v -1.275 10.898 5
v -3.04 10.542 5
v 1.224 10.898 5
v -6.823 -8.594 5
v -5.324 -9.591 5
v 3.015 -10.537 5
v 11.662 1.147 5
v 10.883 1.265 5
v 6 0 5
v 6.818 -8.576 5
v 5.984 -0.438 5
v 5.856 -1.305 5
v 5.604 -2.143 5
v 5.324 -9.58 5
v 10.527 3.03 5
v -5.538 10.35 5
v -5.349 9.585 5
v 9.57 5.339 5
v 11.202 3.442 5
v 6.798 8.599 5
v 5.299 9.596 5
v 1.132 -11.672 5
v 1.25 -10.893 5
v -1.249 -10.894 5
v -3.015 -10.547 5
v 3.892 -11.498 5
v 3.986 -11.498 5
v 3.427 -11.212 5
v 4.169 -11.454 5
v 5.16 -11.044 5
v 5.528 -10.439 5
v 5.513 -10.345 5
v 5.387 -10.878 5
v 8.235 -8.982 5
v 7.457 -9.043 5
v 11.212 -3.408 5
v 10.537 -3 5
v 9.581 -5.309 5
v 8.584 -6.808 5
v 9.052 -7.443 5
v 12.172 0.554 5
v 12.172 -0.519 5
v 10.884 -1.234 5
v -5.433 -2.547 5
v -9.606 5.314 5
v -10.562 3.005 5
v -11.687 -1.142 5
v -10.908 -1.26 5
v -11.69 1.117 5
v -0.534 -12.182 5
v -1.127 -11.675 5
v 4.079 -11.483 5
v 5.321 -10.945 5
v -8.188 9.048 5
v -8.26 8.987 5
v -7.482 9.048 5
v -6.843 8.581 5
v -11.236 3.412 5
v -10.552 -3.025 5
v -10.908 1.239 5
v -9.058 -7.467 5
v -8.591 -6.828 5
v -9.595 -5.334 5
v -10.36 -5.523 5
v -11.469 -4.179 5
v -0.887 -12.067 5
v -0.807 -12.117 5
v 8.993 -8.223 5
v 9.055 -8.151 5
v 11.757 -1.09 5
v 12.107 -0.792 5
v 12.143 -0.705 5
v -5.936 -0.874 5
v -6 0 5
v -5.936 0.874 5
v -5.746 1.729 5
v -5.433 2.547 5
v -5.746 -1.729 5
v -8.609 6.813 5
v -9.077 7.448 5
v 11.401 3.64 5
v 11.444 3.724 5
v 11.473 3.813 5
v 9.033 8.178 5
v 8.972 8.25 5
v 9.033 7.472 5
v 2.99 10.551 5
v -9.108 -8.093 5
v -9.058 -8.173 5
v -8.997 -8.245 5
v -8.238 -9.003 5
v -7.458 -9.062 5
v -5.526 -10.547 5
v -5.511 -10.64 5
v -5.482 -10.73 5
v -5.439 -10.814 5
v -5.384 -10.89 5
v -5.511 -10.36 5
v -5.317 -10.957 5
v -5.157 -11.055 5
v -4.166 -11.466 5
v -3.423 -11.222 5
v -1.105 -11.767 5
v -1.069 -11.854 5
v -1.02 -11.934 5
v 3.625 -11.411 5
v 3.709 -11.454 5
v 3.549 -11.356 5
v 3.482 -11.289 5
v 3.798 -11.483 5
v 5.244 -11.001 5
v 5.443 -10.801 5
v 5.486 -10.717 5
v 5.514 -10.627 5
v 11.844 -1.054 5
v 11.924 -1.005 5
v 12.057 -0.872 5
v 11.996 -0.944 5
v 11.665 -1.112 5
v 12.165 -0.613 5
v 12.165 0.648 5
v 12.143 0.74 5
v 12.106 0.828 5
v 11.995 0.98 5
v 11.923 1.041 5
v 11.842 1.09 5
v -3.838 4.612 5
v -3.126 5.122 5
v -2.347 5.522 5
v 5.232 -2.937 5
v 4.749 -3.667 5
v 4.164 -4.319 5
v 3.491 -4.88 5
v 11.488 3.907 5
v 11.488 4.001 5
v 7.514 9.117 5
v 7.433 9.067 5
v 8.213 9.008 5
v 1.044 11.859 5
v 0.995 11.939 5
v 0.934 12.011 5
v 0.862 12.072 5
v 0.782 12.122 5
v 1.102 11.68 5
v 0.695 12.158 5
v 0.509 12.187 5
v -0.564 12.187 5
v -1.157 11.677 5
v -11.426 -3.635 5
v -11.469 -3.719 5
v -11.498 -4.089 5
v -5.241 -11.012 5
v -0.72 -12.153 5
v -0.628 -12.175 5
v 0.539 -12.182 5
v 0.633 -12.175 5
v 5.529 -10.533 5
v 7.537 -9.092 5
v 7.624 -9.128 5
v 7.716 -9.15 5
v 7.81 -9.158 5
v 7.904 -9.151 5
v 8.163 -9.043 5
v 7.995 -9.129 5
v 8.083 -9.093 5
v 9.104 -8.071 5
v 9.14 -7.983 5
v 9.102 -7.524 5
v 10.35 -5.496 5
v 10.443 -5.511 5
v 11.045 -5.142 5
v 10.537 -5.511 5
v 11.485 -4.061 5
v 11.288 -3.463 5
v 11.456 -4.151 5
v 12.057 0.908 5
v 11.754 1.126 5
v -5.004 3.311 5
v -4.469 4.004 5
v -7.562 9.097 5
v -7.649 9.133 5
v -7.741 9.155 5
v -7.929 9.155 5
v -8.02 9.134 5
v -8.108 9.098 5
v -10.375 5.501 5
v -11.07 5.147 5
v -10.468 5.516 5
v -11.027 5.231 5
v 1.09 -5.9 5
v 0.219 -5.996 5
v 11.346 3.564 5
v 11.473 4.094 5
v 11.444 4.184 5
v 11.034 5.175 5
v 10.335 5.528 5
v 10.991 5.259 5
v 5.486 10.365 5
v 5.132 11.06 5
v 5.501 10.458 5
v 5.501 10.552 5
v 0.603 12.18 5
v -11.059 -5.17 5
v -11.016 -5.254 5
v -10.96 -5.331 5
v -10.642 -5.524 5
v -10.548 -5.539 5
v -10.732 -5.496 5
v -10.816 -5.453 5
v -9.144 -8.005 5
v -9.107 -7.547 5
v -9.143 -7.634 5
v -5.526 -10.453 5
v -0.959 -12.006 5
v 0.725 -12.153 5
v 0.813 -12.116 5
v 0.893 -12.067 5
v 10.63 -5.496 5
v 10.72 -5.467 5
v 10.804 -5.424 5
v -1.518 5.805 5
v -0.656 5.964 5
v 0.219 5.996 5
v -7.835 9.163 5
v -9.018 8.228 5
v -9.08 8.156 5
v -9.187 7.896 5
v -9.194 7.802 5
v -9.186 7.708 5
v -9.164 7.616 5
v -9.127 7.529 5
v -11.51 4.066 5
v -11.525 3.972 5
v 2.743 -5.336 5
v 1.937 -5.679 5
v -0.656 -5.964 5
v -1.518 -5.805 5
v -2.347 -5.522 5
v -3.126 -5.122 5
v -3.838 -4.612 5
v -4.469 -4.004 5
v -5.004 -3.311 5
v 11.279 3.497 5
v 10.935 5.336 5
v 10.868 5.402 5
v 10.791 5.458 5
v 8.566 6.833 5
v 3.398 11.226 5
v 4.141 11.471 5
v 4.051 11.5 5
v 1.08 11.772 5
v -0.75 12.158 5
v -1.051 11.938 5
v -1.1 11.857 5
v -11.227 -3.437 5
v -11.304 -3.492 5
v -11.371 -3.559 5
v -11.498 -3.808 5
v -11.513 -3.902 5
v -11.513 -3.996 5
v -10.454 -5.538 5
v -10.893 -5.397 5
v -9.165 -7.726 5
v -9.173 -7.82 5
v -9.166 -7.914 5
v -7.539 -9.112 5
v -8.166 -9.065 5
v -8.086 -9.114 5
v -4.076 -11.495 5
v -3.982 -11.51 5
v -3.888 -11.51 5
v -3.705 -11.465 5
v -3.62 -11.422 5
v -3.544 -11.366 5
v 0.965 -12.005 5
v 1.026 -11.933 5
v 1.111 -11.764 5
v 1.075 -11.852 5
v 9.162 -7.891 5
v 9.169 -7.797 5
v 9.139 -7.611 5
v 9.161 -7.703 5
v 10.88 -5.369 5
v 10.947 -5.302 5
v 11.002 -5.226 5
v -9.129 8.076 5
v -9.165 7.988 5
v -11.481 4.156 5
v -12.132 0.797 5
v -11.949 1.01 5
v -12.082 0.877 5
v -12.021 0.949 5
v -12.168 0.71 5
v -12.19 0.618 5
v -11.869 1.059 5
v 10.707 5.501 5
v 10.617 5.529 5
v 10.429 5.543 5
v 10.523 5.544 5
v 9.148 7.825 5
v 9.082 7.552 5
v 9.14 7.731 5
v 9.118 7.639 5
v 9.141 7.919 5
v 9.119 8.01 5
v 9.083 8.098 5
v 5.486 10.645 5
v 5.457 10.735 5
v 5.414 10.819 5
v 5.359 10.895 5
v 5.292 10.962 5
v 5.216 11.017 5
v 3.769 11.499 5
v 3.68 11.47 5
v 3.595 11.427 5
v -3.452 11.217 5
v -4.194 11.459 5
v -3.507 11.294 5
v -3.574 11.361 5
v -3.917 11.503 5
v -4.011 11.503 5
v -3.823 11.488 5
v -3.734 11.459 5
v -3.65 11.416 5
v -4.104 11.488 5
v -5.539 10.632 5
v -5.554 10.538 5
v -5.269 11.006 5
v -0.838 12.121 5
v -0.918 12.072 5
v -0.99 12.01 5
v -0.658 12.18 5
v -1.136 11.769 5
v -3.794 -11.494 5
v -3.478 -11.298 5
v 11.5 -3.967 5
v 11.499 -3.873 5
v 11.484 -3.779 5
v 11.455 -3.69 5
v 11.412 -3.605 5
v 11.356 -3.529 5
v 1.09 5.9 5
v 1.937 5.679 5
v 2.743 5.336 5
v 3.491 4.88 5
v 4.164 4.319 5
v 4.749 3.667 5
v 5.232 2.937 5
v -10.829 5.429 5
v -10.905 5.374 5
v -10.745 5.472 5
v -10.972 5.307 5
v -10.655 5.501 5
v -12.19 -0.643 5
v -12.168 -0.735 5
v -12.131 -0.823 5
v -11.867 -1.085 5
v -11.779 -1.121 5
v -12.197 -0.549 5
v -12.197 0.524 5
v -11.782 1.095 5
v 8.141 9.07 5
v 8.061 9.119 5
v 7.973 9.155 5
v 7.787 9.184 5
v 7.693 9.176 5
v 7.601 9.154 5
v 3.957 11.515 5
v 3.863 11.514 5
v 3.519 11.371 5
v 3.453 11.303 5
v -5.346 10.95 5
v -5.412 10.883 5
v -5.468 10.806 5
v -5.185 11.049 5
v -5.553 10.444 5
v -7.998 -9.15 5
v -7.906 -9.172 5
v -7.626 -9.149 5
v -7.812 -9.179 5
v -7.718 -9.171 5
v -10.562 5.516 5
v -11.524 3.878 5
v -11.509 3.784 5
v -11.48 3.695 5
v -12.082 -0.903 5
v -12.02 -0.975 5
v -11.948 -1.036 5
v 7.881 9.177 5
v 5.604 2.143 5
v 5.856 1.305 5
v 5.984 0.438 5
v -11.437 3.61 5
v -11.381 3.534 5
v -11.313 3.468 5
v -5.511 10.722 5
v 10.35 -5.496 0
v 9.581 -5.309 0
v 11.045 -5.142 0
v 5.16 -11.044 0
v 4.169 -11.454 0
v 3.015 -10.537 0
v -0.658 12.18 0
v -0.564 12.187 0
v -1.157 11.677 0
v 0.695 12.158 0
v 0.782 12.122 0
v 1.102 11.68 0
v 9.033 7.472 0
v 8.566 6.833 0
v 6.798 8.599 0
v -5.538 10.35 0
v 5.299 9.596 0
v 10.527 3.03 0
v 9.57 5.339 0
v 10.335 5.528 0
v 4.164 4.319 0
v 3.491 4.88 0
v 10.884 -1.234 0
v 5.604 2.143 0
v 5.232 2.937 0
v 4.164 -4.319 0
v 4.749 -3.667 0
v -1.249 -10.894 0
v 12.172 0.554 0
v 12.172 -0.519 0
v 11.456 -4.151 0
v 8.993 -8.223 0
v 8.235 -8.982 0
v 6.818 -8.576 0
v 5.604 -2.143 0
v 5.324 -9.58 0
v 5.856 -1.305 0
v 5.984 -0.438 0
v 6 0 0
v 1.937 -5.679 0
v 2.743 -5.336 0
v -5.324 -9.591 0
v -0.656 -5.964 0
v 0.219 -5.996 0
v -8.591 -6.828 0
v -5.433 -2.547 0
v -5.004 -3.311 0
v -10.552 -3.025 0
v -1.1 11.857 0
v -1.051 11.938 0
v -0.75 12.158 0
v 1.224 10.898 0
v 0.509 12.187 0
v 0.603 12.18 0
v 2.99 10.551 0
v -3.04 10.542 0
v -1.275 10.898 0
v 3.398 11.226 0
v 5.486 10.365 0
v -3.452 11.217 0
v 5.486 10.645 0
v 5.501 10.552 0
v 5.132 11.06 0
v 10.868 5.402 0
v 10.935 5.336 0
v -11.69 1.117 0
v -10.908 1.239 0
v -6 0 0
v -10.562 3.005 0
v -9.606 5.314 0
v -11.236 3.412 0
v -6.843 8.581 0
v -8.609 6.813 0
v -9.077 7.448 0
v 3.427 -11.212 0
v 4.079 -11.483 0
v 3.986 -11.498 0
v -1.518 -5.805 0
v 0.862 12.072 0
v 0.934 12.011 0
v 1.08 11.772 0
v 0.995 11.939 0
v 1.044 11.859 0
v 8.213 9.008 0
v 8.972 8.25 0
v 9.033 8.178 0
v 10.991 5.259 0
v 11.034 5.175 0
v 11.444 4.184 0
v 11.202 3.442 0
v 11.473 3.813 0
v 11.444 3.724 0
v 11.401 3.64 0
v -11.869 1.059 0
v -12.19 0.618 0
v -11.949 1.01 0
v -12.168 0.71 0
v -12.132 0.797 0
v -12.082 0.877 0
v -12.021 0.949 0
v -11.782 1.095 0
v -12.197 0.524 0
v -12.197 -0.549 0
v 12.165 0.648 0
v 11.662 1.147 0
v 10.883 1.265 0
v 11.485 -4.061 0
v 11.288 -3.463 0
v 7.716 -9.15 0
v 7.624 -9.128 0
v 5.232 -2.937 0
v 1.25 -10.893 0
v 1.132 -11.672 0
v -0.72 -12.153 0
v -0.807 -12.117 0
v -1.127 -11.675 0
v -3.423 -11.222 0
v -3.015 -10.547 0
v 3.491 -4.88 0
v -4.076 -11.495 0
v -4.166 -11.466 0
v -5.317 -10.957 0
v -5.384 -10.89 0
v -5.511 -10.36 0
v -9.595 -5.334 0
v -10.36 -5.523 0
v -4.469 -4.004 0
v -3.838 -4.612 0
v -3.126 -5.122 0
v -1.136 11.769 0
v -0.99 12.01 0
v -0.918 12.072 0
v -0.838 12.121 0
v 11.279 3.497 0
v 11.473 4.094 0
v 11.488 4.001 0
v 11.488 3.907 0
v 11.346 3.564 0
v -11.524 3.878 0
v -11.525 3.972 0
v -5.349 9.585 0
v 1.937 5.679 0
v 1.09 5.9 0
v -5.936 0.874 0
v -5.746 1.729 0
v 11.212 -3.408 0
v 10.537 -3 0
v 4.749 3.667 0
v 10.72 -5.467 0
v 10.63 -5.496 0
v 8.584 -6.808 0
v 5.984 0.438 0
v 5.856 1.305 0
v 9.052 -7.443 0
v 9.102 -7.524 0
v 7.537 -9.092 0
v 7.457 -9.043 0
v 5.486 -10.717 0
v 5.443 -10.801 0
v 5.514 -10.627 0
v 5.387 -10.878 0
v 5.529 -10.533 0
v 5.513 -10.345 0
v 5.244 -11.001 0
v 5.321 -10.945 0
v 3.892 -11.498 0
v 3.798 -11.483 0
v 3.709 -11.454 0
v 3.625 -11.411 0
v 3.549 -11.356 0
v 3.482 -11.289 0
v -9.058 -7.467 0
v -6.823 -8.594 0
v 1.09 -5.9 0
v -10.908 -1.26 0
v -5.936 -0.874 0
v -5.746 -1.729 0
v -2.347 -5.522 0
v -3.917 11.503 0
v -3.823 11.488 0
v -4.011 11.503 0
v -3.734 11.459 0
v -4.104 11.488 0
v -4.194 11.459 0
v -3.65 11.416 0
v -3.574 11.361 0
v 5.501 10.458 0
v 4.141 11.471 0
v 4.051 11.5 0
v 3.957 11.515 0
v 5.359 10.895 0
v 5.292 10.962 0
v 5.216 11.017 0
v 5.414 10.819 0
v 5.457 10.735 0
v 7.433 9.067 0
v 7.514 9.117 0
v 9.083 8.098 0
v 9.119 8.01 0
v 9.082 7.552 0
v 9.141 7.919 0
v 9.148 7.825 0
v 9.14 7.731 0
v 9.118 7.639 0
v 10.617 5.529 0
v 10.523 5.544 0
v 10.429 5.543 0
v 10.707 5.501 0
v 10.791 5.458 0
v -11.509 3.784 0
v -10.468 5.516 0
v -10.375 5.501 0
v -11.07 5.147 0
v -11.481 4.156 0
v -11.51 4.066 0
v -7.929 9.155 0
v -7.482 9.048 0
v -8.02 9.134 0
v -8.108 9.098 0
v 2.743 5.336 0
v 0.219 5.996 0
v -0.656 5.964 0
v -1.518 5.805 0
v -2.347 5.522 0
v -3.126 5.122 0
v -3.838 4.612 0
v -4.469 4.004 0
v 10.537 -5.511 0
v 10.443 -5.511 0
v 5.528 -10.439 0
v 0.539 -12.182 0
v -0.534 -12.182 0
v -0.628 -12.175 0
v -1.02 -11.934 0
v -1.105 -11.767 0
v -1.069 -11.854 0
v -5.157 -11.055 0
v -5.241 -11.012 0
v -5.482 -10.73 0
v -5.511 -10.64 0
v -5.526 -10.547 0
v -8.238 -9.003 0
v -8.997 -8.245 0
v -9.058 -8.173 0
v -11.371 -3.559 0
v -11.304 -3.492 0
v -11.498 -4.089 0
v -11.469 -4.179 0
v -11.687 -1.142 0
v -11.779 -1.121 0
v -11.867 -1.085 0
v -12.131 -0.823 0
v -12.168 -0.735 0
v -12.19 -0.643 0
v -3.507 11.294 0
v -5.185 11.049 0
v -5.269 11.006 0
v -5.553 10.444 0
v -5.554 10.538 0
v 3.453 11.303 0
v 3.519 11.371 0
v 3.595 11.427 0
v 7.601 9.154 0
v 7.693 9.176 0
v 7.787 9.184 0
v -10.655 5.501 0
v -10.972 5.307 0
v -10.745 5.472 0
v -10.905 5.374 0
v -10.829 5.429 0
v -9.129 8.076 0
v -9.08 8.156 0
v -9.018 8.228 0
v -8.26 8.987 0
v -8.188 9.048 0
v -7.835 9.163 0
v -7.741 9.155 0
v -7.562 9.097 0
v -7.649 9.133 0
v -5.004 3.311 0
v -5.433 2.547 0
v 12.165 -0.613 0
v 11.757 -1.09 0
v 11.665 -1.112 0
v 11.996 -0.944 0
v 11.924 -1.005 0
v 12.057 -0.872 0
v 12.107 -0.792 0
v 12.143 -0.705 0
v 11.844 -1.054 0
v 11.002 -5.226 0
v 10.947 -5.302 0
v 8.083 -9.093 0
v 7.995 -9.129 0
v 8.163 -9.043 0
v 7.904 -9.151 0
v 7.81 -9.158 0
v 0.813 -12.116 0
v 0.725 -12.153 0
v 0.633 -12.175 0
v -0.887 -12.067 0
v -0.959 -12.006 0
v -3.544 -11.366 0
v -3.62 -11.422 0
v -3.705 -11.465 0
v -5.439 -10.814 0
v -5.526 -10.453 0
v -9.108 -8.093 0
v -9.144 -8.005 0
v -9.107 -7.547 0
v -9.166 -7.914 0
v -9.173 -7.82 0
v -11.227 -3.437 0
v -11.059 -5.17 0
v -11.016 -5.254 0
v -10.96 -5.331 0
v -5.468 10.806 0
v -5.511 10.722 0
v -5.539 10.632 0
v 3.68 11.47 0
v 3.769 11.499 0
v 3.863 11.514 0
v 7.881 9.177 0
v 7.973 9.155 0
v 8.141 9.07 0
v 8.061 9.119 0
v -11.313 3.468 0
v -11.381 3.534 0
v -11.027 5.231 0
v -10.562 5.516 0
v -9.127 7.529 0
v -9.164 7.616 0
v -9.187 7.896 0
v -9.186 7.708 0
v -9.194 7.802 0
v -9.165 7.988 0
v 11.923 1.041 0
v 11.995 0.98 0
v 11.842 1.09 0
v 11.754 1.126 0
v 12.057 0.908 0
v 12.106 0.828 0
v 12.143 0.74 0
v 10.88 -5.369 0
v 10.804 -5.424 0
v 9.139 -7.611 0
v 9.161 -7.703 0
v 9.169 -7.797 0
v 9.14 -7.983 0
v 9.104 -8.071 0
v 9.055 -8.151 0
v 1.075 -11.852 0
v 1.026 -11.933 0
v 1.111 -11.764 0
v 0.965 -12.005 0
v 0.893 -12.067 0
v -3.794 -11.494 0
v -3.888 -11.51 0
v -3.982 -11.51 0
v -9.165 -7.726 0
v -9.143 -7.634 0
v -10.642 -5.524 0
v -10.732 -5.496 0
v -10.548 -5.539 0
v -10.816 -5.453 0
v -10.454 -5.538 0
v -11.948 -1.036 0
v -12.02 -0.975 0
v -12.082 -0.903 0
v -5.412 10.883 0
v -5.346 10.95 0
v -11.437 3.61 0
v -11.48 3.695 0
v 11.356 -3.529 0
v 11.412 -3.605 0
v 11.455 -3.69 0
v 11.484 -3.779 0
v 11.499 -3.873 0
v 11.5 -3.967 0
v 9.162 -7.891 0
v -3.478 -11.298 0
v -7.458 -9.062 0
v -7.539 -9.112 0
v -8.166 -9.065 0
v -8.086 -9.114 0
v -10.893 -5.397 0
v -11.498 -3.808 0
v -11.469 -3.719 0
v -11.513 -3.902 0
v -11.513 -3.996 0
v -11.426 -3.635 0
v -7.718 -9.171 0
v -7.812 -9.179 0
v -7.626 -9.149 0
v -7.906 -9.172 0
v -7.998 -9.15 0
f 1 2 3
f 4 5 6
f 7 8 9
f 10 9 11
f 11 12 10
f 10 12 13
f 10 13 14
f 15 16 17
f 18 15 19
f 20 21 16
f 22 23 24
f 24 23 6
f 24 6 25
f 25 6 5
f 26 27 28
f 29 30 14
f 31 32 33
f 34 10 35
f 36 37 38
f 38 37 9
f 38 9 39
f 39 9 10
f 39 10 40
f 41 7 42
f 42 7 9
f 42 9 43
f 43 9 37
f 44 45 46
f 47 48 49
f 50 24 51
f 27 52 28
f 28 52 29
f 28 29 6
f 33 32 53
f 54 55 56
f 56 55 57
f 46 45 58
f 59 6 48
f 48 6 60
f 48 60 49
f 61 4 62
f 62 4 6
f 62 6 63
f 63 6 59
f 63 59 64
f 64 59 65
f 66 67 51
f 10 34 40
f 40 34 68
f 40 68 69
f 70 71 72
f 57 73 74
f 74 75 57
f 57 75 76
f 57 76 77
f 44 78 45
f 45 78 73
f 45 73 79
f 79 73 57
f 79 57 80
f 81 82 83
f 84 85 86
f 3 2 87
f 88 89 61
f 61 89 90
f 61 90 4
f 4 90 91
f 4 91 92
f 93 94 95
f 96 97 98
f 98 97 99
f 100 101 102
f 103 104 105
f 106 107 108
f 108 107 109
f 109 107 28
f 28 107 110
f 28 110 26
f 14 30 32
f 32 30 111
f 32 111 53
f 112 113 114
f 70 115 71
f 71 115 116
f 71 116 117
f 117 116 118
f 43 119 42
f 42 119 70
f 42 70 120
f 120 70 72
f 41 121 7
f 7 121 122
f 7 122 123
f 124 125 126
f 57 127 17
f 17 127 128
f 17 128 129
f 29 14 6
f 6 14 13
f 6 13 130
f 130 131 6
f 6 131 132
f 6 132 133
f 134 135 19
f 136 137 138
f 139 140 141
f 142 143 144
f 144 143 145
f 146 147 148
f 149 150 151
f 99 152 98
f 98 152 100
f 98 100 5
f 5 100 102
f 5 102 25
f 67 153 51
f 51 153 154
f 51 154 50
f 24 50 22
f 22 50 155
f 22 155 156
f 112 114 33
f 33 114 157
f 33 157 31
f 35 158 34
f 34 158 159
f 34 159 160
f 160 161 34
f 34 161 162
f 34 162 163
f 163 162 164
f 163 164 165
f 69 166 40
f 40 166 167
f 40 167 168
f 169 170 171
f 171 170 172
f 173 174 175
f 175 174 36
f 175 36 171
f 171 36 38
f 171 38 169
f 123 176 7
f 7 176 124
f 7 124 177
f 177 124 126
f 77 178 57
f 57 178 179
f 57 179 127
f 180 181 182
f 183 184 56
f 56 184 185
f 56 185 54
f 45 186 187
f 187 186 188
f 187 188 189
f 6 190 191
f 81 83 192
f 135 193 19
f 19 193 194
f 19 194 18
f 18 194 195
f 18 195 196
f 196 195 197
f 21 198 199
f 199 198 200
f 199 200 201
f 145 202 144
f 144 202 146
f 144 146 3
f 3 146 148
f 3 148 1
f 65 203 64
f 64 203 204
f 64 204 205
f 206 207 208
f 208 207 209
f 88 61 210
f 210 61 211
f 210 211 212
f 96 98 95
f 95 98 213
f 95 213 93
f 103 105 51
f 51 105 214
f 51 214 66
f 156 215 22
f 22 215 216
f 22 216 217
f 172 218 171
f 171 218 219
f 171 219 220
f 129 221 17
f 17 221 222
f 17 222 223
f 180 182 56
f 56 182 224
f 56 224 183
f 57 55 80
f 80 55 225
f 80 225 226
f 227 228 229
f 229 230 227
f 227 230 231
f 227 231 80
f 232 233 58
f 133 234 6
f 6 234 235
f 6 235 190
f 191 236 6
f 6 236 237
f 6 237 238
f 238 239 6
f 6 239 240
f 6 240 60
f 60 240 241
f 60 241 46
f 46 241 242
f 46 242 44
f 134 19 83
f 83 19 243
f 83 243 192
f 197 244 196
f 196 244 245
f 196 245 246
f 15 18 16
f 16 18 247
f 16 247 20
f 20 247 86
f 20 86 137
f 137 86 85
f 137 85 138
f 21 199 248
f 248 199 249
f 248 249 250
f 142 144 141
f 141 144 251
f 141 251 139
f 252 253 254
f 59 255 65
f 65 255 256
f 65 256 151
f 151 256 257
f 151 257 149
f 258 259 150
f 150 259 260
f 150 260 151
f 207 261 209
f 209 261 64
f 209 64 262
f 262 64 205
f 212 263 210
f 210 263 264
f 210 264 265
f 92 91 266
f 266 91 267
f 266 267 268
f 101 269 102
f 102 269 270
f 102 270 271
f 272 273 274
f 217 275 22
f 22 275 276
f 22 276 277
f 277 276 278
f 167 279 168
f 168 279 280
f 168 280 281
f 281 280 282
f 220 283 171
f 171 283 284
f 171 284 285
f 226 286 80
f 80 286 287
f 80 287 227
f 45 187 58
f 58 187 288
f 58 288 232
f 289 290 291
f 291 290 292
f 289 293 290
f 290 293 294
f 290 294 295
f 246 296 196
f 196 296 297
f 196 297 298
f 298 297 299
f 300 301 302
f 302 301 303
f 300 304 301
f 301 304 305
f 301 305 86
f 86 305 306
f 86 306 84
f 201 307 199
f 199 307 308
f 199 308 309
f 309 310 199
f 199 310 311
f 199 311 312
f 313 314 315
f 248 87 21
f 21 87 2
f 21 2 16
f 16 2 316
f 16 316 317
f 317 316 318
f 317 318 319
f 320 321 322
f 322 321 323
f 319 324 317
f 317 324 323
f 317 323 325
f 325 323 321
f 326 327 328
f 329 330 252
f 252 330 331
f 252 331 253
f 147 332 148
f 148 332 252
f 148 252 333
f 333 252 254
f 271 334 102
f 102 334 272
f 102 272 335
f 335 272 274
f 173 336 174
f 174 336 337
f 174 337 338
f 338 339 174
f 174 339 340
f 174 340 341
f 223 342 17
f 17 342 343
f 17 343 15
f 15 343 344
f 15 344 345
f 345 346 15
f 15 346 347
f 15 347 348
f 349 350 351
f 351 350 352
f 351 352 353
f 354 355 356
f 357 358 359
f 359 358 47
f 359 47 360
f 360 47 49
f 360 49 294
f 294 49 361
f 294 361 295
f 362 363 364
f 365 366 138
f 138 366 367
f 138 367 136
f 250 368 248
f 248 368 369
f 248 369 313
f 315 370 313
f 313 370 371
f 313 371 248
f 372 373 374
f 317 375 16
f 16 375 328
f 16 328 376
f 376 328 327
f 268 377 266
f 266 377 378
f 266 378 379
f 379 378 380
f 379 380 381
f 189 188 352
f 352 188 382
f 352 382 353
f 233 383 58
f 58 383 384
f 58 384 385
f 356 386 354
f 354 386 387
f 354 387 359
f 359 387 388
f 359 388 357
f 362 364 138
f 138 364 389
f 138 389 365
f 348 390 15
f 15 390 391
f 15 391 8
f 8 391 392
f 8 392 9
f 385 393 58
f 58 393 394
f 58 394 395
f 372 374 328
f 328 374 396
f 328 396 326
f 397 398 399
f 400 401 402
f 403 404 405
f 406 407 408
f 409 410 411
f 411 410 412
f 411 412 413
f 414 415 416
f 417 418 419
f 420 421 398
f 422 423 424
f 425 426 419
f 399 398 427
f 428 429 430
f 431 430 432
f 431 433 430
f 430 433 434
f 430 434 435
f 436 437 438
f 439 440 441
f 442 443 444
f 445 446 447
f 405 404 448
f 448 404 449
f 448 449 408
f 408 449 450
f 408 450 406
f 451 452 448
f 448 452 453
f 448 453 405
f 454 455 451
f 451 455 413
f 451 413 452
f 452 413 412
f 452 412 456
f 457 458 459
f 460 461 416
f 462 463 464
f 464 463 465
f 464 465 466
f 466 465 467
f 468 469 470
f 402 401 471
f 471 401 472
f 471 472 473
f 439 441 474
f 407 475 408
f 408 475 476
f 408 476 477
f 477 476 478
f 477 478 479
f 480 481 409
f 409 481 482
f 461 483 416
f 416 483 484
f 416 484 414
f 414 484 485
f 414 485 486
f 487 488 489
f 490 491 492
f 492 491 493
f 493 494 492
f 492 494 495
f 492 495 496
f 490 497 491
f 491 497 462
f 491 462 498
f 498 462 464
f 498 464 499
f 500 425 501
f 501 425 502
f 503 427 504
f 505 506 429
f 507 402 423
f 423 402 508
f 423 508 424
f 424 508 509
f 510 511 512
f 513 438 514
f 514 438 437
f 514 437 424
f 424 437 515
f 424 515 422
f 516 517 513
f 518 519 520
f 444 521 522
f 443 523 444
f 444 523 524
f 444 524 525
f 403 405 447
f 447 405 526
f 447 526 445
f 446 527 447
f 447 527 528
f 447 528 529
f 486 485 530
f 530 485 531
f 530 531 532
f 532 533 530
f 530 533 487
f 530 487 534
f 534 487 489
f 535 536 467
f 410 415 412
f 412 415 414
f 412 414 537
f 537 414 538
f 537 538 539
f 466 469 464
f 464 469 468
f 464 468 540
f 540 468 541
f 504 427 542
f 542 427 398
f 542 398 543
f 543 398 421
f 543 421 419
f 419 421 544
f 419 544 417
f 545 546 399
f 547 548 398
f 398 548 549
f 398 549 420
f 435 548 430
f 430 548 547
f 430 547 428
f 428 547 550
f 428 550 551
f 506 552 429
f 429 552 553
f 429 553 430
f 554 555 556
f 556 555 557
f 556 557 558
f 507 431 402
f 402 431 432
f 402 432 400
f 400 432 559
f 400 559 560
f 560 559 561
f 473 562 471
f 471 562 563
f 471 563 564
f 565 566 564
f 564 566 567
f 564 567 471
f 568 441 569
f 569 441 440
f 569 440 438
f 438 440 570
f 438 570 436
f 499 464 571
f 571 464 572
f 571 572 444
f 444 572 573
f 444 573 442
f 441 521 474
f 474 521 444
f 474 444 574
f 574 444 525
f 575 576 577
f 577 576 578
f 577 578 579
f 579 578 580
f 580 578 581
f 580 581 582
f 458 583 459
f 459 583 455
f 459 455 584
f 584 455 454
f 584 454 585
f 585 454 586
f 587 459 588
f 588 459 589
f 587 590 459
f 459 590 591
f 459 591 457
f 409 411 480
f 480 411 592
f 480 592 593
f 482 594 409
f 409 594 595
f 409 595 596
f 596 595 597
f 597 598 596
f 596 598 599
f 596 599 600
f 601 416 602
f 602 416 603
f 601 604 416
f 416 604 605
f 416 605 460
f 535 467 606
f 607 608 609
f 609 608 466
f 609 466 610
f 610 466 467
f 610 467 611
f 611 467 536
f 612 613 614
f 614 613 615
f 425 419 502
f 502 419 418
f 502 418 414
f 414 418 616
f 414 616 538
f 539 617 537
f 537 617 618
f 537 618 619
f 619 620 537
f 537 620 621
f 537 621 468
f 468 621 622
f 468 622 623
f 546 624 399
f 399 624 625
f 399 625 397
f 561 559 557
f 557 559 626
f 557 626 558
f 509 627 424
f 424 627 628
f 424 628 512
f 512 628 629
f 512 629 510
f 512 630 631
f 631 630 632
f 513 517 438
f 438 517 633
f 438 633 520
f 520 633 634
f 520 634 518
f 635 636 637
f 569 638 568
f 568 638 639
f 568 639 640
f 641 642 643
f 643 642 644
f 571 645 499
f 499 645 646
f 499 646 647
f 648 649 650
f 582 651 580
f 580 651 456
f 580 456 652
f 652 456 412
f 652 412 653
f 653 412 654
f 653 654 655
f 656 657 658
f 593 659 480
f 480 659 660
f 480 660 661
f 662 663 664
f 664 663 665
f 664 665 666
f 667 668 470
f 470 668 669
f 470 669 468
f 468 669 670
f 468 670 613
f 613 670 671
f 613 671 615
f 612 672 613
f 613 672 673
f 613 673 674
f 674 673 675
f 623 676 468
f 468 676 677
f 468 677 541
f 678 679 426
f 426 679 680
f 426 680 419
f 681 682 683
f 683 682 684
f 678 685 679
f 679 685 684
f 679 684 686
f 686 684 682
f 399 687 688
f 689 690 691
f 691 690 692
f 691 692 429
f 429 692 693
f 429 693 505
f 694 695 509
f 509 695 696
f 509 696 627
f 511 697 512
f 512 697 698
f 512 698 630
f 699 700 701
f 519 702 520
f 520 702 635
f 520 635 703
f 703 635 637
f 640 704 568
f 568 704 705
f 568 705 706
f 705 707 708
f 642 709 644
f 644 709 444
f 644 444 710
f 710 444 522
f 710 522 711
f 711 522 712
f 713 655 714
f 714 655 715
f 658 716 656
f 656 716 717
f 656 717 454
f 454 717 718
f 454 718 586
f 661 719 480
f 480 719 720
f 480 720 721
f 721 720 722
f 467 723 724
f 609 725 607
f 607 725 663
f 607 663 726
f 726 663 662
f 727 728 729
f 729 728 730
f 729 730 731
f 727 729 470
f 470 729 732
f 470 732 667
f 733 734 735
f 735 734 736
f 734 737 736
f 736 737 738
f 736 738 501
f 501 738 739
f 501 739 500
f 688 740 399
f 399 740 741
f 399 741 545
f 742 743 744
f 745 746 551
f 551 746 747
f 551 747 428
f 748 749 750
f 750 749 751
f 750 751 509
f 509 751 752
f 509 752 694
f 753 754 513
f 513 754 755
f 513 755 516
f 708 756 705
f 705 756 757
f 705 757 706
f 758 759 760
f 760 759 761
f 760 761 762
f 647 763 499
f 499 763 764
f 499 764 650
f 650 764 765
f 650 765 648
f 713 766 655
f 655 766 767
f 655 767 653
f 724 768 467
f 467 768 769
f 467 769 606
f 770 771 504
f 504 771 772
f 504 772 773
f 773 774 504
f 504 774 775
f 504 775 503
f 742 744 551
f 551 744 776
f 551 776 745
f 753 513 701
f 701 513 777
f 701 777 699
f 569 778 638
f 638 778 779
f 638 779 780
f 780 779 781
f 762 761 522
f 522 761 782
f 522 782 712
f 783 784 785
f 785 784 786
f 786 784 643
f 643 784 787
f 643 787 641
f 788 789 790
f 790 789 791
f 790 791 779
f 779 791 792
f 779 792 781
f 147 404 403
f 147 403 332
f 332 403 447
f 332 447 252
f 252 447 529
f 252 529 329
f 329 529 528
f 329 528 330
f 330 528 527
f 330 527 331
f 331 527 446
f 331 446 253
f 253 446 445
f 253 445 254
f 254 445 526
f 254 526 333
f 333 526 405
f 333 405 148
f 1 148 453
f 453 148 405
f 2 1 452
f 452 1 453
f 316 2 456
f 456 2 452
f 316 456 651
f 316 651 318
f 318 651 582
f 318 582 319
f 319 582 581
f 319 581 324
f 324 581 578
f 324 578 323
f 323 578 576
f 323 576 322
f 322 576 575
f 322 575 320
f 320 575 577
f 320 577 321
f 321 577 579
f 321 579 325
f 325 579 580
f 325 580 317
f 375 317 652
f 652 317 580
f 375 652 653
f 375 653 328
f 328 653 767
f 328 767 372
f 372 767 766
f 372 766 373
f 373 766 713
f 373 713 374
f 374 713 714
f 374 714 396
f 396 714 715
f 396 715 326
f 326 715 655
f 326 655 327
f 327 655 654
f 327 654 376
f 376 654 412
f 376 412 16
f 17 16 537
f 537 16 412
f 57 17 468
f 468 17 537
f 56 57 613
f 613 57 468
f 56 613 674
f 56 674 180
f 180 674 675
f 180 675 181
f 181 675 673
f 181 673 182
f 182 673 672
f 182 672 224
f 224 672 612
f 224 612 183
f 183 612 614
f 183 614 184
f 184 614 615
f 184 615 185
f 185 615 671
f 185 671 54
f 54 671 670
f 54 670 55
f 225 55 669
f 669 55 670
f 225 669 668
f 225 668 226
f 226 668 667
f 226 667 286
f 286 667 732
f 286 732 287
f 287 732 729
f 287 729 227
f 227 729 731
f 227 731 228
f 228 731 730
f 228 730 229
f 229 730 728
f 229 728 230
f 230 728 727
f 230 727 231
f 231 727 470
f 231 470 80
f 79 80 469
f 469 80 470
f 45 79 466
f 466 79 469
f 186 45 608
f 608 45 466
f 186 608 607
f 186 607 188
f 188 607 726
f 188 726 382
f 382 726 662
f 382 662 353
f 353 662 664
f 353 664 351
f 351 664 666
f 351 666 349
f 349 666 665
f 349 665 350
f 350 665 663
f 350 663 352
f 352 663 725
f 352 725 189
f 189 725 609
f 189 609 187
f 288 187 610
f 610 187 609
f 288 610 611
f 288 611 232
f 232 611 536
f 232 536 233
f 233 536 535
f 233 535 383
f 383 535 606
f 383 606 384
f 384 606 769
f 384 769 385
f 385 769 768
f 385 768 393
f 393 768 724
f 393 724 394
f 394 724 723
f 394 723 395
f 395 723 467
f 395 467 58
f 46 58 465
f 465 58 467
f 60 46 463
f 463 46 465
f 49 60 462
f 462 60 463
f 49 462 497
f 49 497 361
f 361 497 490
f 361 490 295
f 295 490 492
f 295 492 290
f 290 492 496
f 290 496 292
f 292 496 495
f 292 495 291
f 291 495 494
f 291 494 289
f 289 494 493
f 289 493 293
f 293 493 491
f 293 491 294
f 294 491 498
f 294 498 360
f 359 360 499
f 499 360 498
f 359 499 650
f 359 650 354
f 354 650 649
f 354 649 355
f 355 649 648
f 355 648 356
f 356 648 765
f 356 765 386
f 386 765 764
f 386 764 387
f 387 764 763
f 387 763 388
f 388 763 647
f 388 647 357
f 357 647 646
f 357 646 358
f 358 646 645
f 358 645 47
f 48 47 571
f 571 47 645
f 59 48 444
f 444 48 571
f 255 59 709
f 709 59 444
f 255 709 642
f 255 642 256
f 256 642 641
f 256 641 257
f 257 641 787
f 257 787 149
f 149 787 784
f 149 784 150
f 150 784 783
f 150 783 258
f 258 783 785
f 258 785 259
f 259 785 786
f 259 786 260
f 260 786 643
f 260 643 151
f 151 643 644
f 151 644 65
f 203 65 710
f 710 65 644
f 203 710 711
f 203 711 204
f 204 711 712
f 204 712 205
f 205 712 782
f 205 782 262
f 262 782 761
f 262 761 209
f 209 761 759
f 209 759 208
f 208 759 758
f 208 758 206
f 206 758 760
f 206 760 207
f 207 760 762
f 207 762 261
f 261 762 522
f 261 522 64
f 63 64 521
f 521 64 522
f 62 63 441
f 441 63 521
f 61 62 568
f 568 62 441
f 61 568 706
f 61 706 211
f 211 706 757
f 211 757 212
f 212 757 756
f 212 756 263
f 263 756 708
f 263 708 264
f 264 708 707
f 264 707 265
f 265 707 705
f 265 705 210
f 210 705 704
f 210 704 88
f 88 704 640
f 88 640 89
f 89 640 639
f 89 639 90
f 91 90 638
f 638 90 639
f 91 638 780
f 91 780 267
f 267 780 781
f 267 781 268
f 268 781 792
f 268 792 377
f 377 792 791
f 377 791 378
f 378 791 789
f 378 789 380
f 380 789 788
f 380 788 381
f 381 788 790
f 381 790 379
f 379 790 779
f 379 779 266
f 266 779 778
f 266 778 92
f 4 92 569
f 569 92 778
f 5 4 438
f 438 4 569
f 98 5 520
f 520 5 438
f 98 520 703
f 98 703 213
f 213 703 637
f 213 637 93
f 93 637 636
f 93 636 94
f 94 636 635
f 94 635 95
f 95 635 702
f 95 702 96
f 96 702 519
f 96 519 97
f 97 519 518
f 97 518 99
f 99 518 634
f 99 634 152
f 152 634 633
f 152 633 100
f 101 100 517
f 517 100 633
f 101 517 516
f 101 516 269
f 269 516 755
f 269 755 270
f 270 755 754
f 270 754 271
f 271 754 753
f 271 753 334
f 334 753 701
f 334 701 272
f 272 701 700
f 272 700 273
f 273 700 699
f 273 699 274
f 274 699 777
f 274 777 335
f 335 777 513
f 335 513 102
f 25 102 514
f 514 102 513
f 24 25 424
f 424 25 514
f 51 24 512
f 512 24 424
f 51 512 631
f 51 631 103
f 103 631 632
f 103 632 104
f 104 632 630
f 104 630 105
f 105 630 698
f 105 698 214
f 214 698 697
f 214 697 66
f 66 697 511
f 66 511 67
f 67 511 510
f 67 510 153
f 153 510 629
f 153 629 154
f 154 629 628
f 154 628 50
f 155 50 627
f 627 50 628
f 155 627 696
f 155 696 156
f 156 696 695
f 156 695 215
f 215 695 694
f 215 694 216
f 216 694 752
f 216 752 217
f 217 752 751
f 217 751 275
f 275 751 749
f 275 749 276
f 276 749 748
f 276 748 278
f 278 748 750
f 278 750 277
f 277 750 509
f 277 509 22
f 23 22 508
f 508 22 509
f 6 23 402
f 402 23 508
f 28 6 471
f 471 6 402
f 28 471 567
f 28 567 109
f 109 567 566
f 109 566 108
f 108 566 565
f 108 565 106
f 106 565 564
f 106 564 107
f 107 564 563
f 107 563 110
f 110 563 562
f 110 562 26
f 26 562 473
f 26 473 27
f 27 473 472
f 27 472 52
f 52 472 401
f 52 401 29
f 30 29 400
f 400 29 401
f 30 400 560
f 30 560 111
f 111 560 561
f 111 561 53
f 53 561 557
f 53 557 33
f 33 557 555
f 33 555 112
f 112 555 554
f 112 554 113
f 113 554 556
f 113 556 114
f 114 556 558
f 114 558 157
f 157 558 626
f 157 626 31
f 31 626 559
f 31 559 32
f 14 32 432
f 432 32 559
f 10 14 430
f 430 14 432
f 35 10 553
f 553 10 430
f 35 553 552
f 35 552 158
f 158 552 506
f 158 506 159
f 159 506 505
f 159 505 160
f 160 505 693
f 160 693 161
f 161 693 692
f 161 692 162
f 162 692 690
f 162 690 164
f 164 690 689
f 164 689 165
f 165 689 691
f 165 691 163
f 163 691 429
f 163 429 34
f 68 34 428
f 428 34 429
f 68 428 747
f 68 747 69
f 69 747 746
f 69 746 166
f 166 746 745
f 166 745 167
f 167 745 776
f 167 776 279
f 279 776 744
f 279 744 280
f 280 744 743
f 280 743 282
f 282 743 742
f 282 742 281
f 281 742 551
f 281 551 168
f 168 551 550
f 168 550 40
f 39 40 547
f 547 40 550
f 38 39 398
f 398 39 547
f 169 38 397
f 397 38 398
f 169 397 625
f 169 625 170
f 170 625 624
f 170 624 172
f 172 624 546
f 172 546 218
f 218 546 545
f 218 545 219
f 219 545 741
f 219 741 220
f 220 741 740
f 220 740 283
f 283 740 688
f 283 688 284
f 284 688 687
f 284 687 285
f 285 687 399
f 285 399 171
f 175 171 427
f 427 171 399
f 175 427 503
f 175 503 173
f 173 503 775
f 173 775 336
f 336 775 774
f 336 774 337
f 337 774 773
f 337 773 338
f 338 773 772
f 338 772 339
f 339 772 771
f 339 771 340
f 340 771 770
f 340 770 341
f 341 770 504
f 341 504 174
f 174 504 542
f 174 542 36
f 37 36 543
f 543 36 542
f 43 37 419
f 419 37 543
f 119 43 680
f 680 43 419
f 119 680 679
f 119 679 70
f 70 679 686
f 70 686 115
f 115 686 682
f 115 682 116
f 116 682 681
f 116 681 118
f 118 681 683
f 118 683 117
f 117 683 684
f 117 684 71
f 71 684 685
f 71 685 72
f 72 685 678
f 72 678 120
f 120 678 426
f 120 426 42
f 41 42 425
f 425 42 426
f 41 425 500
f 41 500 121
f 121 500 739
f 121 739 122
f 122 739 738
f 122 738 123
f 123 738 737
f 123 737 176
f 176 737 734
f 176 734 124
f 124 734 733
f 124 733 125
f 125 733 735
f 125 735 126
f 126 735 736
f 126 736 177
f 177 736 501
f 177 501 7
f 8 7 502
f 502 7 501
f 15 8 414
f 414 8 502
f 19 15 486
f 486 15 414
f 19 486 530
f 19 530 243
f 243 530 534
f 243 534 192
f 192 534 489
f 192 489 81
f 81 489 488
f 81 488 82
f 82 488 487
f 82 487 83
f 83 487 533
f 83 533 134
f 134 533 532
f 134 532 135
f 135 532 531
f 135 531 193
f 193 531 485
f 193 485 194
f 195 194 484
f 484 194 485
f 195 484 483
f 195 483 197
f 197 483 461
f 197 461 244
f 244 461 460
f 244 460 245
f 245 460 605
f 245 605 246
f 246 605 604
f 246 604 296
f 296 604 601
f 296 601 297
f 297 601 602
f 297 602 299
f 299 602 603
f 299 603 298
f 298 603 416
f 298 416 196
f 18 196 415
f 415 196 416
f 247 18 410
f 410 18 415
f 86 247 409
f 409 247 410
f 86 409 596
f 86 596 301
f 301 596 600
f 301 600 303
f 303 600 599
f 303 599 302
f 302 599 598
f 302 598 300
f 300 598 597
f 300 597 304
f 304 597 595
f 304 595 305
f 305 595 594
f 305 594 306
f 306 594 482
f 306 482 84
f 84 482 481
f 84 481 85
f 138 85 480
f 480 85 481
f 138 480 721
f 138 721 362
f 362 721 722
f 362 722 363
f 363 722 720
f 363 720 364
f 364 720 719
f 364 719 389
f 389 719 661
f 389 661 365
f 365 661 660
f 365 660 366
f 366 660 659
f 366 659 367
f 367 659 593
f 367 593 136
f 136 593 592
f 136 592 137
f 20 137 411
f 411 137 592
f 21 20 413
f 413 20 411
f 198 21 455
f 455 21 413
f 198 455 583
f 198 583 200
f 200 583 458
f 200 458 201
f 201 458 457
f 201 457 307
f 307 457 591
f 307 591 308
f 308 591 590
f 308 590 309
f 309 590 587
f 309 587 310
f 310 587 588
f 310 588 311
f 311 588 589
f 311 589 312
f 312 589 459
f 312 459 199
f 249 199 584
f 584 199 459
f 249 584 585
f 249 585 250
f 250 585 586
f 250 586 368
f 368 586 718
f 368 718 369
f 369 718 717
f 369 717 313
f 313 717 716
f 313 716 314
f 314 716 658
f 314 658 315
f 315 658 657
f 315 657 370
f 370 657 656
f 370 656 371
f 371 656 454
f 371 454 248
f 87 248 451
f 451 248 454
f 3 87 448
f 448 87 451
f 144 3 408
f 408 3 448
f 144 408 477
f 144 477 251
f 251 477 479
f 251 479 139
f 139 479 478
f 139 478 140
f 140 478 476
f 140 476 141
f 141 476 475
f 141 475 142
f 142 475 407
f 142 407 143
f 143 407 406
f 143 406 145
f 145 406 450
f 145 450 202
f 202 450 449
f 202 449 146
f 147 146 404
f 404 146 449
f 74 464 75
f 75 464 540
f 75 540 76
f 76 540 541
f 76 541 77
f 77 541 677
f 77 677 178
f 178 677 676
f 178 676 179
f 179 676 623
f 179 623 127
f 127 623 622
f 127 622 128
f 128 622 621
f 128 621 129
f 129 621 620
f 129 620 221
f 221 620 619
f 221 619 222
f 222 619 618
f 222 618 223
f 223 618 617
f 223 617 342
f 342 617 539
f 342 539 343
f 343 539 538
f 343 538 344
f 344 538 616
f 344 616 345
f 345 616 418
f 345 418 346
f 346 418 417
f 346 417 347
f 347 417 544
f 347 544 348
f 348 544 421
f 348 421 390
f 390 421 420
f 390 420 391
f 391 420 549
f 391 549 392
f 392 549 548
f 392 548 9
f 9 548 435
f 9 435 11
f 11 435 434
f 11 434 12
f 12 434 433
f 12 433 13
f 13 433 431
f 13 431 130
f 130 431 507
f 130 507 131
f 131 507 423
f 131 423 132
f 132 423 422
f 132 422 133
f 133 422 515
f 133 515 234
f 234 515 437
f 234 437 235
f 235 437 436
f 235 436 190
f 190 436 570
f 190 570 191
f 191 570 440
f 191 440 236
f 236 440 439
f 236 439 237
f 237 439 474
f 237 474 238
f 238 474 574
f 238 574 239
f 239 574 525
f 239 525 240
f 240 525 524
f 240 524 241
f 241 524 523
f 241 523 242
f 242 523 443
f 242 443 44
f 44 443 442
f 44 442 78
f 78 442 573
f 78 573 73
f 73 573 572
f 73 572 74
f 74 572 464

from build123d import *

# Parameters (mm, degrees)
ESQUISSE5_R        = 6
BOSS_EXTRU_1_DEPTH = 5


with BuildPart() as part:
    # Esquisse5 → Boss.-Extru.1 (new body)
    with BuildSketch(Plane.XY):
        with BuildLine():
            Line((0, 12.187189413), (0.508919212, 12.187189413))
            ThreePointArc((0.508919212, 12.187189413), (0.899044051, 12.043043128), (1.101718736, 11.679864778))
            Line((1.101718736, 11.679864778), (1.223875428, 10.898487461))
            Line((1.223875428, 10.898487461), (2.990113971, 10.551498398))
            Line((2.990113971, 10.551498398), (3.397524082, 11.2264814))
            ThreePointArc((3.397524082, 11.2264814), (3.723877023, 11.486437733), (4.140815501, 11.470758379))
            Line((4.140815501, 11.470758379), (4.661933908, 11.254904067))
            Line((4.661933908, 11.254904067), (5.132113951, 11.060149116))
            ThreePointArc((5.132113951, 11.060149116), (5.43737991, 10.777681002), (5.485644567, 10.364587714))
            Line((5.485644567, 10.364587714), (5.29948248, 9.595941861))
            Line((5.29948248, 9.595941861), (6.798487154, 8.59945554))
            Line((6.798487154, 8.59945554), (7.433189829, 9.06714942))
            ThreePointArc((7.433189829, 9.06714942), (7.834181612, 9.182427892), (8.21338231, 9.00838661))
            Line((8.21338231, 9.00838661), (8.612229071, 8.609539849))
            Line((8.612229071, 8.609539849), (8.972089297, 8.249679623))
            ThreePointArc((8.972089297, 8.249679623), (9.146022401, 7.871892888), (9.032529172, 7.47177437))
            Line((9.032529172, 7.47177437), (8.566389797, 6.832879345))
            Line((8.566389797, 6.832879345), (9.569950728, 5.338601775))
            Line((9.569950728, 5.338601775), (10.335318239, 5.52780438))
            ThreePointArc((10.335318239, 5.52780438), (10.749901501, 5.480854889), (11.033634549, 5.174947886))
            Line((11.033634549, 5.174947886), (11.249488861, 4.653829479))
            Line((11.249488861, 4.653829479), (11.444243812, 4.183649436))
            ThreePointArc((11.444243812, 4.183649436), (11.460364322, 3.768058687), (11.202391523, 3.441829356))
            Line((11.202391523, 3.441829356), (10.527240354, 3.029951135))
            Line((10.527240354, 3.029951135), (10.882574489, 1.26537253))
            Line((10.882574489, 1.26537253), (11.662086569, 1.147279478))
            ThreePointArc((11.662086569, 1.147279478), (12.027144767, 0.945249658), (12.172214381, 0.554048503))
            Line((12.172214381, 0.554048503), (12.172214381, -0.010005996))
            Line((12.172214381, -0.010005996), (12.172214381, -0.518925208))
            ThreePointArc((12.172214381, -0.518925208), (12.028068096, -0.909050047), (11.664889747, -1.111724733))
            Line((11.664889747, -1.111724733), (10.88351243, -1.233881424))
            Line((10.88351243, -1.233881424), (10.536523367, -3.000119967))
            Line((10.536523367, -3.000119967), (11.211506369, -3.407530078))
            ThreePointArc((11.211506369, -3.407530078), (11.471462701, -3.733883019), (11.455783348, -4.150821497))
            Line((11.455783348, -4.150821497), (11.239929036, -4.671939904))
            Line((11.239929036, -4.671939904), (11.045174085, -5.142119947))
            ThreePointArc((11.045174085, -5.142119947), (10.76270597, -5.447385906), (10.349612682, -5.495650563))
            Line((10.349612682, -5.495650563), (9.580966829, -5.309488476))
            Line((9.580966829, -5.309488476), (8.584480508, -6.80849315))
            Line((8.584480508, -6.80849315), (9.052174389, -7.443195825))
            ThreePointArc((9.052174389, -7.443195825), (9.167452861, -7.844187609), (8.993411579, -8.223388306))
            Line((8.993411579, -8.223388306), (8.594564817, -8.622235067))
            Line((8.594564817, -8.622235067), (8.234704592, -8.982095293))
            ThreePointArc((8.234704592, -8.982095293), (7.856917857, -9.156028397), (7.456799339, -9.042535168))
            Line((7.456799339, -9.042535168), (6.817904314, -8.576395793))
            Line((6.817904314, -8.576395793), (5.323626744, -9.579956724))
            Line((5.323626744, -9.579956724), (5.512829349, -10.345324235))
            ThreePointArc((5.512829349, -10.345324235), (5.465879858, -10.759907497), (5.159972855, -11.043640545))
            Line((5.159972855, -11.043640545), (4.638854448, -11.259494857))
            Line((4.638854448, -11.259494857), (4.168674404, -11.454249808))
            ThreePointArc((4.168674404, -11.454249808), (3.753083655, -11.470370318), (3.426854324, -11.212397519))
            Line((3.426854324, -11.212397519), (3.014976103, -10.53724635))
            Line((3.014976103, -10.53724635), (1.250397498, -10.892580485))
            Line((1.250397498, -10.892580485), (1.132304447, -11.672092565))
            ThreePointArc((1.132304447, -11.672092565), (0.930274627, -12.037150763), (0.539073472, -12.182220377))
            Line((0.539073472, -12.182220377), (-0.024981027, -12.182220377))
            Line((-0.024981027, -12.182220377), (-0.533900239, -12.182220377))
            ThreePointArc((-0.533900239, -12.182220377), (-0.924025078, -12.038074093), (-1.126699764, -11.674895743))
            Line((-1.126699764, -11.674895743), (-1.248856456, -10.893518426))
            Line((-1.248856456, -10.893518426), (-3.015094998, -10.546529363))
            Line((-3.015094998, -10.546529363), (-3.42250511, -11.221512365))
            ThreePointArc((-3.42250511, -11.221512365), (-3.74885805, -11.481468697), (-4.165796528, -11.465789344))
            Line((-4.165796528, -11.465789344), (-4.686914935, -11.249935032))
            Line((-4.686914935, -11.249935032), (-5.157094979, -11.055180081))
            ThreePointArc((-5.157094979, -11.055180081), (-5.462360938, -10.772711966), (-5.510625594, -10.359618678))
            Line((-5.510625594, -10.359618678), (-5.324463507, -9.590972826))
            Line((-5.324463507, -9.590972826), (-6.823468181, -8.594486504))
            Line((-6.823468181, -8.594486504), (-7.458170856, -9.062180385))
            ThreePointArc((-7.458170856, -9.062180385), (-7.85916264, -9.177458857), (-8.238363337, -9.003417575))
            Line((-8.238363337, -9.003417575), (-8.637210099, -8.604570813))
            Line((-8.637210099, -8.604570813), (-8.997070324, -8.244710588))
            ThreePointArc((-8.997070324, -8.244710588), (-9.171003428, -7.866923853), (-9.057510199, -7.466805335))
            Line((-9.057510199, -7.466805335), (-8.591370824, -6.82791031))
            Line((-8.591370824, -6.82791031), (-9.594931756, -5.33363274))
            Line((-9.594931756, -5.33363274), (-10.360299266, -5.522835345))
            ThreePointArc((-10.360299266, -5.522835345), (-10.774882529, -5.475885854), (-11.058615577, -5.169978851))
            Line((-11.058615577, -5.169978851), (-11.274469888, -4.648860444))
            Line((-11.274469888, -4.648860444), (-11.469224839, -4.178680401))
            ThreePointArc((-11.469224839, -4.178680401), (-11.48534535, -3.763089651), (-11.22737255, -3.43686032))
            Line((-11.22737255, -3.43686032), (-10.552221381, -3.024982099))
            Line((-10.552221381, -3.024982099), (-10.907555516, -1.260403495))
            Line((-10.907555516, -1.260403495), (-11.687067596, -1.142310443))
            ThreePointArc((-11.687067596, -1.142310443), (-12.052125795, -0.940280623), (-12.197195409, -0.549079468))
            Line((-12.197195409, -0.549079468), (-12.197195409, 0.014975031))
            Line((-12.197195409, 0.014975031), (-12.197195409, 0.523894243))
            ThreePointArc((-12.197195409, 0.523894243), (-12.053049124, 0.914019082), (-11.689870774, 1.116693768))
            Line((-11.689870774, 1.116693768), (-10.908493457, 1.238850459))
            Line((-10.908493457, 1.238850459), (-10.561504394, 3.005089002))
            Line((-10.561504394, 3.005089002), (-11.236487396, 3.412499114))
            ThreePointArc((-11.236487396, 3.412499114), (-11.496443729, 3.738852054), (-11.480764375, 4.155790532))
            Line((-11.480764375, 4.155790532), (-11.264910063, 4.676908939))
            Line((-11.264910063, 4.676908939), (-11.070155112, 5.147088983))
            ThreePointArc((-11.070155112, 5.147088983), (-10.787686998, 5.452354942), (-10.37459371, 5.500619598))
            Line((-10.37459371, 5.500619598), (-9.605947857, 5.314457511))
            Line((-9.605947857, 5.314457511), (-8.609461536, 6.813462185))
            Line((-8.609461536, 6.813462185), (-9.077155416, 7.44816486))
            ThreePointArc((-9.077155416, 7.44816486), (-9.192433888, 7.849156644), (-9.018392606, 8.228357341))
            Line((-9.018392606, 8.228357341), (-8.619545845, 8.627204103))
            Line((-8.619545845, 8.627204103), (-8.259685619, 8.987064328))
            ThreePointArc((-8.259685619, 8.987064328), (-7.881898884, 9.160997432), (-7.481780366, 9.047504203))
            Line((-7.481780366, 9.047504203), (-6.842885341, 8.581364828))
            Line((-6.842885341, 8.581364828), (-5.348607771, 9.58492576))
            Line((-5.348607771, 9.58492576), (-5.537810376, 10.35029327))
            ThreePointArc((-5.537810376, 10.35029327), (-5.490860885, 10.764876533), (-5.184953883, 11.04860958))
            Line((-5.184953883, 11.04860958), (-4.663835475, 11.264463892))
            Line((-4.663835475, 11.264463892), (-4.193655432, 11.459218843))
            ThreePointArc((-4.193655432, 11.459218843), (-3.778064683, 11.475339354), (-3.451835352, 11.217366554))
            Line((-3.451835352, 11.217366554), (-3.039957131, 10.542215385))
            Line((-3.039957131, 10.542215385), (-1.275378526, 10.89754952))
            Line((-1.275378526, 10.89754952), (-1.157285475, 11.6770616))
            ThreePointArc((-1.157285475, 11.6770616), (-0.955255654, 12.042119799), (-0.564054499, 12.187189413))
            Line((-0.564054499, 12.187189413), (0, 12.187189413))
        make_face()
        Circle(ESQUISSE5_R, mode=Mode.SUBTRACT)
    extrude(amount=BOSS_EXTRU_1_DEPTH)


solid = part.part
